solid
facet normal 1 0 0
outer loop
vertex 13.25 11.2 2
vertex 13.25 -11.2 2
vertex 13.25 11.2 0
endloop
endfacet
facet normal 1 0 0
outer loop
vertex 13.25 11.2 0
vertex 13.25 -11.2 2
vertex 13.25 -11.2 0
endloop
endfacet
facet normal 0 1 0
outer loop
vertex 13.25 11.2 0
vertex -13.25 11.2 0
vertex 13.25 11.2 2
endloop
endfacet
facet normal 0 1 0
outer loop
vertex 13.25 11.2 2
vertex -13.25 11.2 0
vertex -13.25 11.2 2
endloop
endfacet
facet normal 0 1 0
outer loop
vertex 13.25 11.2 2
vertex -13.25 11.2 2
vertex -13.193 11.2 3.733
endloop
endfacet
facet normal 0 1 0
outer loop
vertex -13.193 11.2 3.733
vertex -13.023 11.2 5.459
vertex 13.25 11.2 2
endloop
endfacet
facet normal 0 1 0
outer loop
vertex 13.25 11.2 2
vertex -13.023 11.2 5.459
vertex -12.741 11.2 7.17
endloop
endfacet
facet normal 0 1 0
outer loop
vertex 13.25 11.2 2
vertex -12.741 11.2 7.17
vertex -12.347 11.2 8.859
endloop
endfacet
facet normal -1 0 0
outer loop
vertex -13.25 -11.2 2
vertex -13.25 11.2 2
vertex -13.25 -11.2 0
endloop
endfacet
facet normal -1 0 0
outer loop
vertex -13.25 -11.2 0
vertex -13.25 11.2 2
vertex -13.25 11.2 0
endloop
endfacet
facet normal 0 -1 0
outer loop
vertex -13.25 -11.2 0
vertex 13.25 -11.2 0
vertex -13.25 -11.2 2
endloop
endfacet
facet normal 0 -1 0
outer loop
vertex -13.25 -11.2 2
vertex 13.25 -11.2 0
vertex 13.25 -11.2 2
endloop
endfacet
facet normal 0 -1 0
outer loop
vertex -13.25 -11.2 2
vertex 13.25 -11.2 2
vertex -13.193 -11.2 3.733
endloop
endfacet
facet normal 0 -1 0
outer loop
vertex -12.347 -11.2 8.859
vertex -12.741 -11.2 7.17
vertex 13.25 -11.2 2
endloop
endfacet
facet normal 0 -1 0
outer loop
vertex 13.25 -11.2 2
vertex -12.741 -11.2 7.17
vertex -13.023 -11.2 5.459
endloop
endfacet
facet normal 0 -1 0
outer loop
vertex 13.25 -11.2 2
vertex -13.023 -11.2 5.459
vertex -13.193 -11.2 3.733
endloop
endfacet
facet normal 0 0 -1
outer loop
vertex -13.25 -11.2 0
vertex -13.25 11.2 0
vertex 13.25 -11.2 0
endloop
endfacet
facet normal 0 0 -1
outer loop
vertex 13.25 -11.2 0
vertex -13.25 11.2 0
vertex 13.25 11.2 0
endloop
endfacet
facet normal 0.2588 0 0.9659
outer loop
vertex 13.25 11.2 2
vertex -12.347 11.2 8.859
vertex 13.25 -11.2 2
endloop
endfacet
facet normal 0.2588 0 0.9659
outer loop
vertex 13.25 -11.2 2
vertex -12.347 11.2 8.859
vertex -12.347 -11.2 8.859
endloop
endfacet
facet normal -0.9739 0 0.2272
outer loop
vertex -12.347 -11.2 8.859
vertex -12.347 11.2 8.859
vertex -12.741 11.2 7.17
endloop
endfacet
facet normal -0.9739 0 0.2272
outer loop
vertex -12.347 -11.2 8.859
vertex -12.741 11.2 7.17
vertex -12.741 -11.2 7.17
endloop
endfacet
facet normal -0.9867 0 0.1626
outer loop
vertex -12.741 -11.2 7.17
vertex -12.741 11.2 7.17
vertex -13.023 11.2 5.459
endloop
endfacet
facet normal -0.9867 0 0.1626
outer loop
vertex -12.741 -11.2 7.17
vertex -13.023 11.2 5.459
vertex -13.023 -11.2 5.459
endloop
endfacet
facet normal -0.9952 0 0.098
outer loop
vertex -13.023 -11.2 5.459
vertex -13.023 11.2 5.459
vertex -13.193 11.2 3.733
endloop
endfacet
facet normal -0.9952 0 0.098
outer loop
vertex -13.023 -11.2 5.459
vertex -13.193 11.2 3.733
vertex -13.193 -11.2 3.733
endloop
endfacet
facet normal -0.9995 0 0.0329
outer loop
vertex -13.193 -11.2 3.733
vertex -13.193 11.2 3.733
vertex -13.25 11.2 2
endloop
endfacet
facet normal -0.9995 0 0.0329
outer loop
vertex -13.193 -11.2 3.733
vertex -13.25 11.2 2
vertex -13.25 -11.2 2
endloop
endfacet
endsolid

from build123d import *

# Parameters (mm, degrees)
SKETCH1_W           = 26.5
SKETCH1_H           = 22.4
BOSS_EXTRUDE1_DEPTH = 2
BOSS_EXTRUDE2_DEPTH = 22.4


with BuildPart() as part:
    # Sketch1 → Boss-Extrude1 (new body)
    with BuildSketch(Plane.XY):
        Rectangle(SKETCH1_W, SKETCH1_H)
    extrude(amount=BOSS_EXTRUDE1_DEPTH)

    # Sketch2 → Boss-Extrude2 (add)
    with BuildSketch(Plane(origin=(0, 11.2, 0), x_dir=(1, 0, 0), z_dir=(0, 1, 0))):
        with BuildLine():
            Line((13.25, -2), (-12.347034397, -8.858704695))
            ThreePointArc((-12.347034397, -8.858704695), (-13.023288826, -5.458944094), (-13.25, -2))
            Line((-13.25, -2), (13.25, -2))
        make_face()
    extrude(amount=-BOSS_EXTRUDE2_DEPTH)


solid = part.part
